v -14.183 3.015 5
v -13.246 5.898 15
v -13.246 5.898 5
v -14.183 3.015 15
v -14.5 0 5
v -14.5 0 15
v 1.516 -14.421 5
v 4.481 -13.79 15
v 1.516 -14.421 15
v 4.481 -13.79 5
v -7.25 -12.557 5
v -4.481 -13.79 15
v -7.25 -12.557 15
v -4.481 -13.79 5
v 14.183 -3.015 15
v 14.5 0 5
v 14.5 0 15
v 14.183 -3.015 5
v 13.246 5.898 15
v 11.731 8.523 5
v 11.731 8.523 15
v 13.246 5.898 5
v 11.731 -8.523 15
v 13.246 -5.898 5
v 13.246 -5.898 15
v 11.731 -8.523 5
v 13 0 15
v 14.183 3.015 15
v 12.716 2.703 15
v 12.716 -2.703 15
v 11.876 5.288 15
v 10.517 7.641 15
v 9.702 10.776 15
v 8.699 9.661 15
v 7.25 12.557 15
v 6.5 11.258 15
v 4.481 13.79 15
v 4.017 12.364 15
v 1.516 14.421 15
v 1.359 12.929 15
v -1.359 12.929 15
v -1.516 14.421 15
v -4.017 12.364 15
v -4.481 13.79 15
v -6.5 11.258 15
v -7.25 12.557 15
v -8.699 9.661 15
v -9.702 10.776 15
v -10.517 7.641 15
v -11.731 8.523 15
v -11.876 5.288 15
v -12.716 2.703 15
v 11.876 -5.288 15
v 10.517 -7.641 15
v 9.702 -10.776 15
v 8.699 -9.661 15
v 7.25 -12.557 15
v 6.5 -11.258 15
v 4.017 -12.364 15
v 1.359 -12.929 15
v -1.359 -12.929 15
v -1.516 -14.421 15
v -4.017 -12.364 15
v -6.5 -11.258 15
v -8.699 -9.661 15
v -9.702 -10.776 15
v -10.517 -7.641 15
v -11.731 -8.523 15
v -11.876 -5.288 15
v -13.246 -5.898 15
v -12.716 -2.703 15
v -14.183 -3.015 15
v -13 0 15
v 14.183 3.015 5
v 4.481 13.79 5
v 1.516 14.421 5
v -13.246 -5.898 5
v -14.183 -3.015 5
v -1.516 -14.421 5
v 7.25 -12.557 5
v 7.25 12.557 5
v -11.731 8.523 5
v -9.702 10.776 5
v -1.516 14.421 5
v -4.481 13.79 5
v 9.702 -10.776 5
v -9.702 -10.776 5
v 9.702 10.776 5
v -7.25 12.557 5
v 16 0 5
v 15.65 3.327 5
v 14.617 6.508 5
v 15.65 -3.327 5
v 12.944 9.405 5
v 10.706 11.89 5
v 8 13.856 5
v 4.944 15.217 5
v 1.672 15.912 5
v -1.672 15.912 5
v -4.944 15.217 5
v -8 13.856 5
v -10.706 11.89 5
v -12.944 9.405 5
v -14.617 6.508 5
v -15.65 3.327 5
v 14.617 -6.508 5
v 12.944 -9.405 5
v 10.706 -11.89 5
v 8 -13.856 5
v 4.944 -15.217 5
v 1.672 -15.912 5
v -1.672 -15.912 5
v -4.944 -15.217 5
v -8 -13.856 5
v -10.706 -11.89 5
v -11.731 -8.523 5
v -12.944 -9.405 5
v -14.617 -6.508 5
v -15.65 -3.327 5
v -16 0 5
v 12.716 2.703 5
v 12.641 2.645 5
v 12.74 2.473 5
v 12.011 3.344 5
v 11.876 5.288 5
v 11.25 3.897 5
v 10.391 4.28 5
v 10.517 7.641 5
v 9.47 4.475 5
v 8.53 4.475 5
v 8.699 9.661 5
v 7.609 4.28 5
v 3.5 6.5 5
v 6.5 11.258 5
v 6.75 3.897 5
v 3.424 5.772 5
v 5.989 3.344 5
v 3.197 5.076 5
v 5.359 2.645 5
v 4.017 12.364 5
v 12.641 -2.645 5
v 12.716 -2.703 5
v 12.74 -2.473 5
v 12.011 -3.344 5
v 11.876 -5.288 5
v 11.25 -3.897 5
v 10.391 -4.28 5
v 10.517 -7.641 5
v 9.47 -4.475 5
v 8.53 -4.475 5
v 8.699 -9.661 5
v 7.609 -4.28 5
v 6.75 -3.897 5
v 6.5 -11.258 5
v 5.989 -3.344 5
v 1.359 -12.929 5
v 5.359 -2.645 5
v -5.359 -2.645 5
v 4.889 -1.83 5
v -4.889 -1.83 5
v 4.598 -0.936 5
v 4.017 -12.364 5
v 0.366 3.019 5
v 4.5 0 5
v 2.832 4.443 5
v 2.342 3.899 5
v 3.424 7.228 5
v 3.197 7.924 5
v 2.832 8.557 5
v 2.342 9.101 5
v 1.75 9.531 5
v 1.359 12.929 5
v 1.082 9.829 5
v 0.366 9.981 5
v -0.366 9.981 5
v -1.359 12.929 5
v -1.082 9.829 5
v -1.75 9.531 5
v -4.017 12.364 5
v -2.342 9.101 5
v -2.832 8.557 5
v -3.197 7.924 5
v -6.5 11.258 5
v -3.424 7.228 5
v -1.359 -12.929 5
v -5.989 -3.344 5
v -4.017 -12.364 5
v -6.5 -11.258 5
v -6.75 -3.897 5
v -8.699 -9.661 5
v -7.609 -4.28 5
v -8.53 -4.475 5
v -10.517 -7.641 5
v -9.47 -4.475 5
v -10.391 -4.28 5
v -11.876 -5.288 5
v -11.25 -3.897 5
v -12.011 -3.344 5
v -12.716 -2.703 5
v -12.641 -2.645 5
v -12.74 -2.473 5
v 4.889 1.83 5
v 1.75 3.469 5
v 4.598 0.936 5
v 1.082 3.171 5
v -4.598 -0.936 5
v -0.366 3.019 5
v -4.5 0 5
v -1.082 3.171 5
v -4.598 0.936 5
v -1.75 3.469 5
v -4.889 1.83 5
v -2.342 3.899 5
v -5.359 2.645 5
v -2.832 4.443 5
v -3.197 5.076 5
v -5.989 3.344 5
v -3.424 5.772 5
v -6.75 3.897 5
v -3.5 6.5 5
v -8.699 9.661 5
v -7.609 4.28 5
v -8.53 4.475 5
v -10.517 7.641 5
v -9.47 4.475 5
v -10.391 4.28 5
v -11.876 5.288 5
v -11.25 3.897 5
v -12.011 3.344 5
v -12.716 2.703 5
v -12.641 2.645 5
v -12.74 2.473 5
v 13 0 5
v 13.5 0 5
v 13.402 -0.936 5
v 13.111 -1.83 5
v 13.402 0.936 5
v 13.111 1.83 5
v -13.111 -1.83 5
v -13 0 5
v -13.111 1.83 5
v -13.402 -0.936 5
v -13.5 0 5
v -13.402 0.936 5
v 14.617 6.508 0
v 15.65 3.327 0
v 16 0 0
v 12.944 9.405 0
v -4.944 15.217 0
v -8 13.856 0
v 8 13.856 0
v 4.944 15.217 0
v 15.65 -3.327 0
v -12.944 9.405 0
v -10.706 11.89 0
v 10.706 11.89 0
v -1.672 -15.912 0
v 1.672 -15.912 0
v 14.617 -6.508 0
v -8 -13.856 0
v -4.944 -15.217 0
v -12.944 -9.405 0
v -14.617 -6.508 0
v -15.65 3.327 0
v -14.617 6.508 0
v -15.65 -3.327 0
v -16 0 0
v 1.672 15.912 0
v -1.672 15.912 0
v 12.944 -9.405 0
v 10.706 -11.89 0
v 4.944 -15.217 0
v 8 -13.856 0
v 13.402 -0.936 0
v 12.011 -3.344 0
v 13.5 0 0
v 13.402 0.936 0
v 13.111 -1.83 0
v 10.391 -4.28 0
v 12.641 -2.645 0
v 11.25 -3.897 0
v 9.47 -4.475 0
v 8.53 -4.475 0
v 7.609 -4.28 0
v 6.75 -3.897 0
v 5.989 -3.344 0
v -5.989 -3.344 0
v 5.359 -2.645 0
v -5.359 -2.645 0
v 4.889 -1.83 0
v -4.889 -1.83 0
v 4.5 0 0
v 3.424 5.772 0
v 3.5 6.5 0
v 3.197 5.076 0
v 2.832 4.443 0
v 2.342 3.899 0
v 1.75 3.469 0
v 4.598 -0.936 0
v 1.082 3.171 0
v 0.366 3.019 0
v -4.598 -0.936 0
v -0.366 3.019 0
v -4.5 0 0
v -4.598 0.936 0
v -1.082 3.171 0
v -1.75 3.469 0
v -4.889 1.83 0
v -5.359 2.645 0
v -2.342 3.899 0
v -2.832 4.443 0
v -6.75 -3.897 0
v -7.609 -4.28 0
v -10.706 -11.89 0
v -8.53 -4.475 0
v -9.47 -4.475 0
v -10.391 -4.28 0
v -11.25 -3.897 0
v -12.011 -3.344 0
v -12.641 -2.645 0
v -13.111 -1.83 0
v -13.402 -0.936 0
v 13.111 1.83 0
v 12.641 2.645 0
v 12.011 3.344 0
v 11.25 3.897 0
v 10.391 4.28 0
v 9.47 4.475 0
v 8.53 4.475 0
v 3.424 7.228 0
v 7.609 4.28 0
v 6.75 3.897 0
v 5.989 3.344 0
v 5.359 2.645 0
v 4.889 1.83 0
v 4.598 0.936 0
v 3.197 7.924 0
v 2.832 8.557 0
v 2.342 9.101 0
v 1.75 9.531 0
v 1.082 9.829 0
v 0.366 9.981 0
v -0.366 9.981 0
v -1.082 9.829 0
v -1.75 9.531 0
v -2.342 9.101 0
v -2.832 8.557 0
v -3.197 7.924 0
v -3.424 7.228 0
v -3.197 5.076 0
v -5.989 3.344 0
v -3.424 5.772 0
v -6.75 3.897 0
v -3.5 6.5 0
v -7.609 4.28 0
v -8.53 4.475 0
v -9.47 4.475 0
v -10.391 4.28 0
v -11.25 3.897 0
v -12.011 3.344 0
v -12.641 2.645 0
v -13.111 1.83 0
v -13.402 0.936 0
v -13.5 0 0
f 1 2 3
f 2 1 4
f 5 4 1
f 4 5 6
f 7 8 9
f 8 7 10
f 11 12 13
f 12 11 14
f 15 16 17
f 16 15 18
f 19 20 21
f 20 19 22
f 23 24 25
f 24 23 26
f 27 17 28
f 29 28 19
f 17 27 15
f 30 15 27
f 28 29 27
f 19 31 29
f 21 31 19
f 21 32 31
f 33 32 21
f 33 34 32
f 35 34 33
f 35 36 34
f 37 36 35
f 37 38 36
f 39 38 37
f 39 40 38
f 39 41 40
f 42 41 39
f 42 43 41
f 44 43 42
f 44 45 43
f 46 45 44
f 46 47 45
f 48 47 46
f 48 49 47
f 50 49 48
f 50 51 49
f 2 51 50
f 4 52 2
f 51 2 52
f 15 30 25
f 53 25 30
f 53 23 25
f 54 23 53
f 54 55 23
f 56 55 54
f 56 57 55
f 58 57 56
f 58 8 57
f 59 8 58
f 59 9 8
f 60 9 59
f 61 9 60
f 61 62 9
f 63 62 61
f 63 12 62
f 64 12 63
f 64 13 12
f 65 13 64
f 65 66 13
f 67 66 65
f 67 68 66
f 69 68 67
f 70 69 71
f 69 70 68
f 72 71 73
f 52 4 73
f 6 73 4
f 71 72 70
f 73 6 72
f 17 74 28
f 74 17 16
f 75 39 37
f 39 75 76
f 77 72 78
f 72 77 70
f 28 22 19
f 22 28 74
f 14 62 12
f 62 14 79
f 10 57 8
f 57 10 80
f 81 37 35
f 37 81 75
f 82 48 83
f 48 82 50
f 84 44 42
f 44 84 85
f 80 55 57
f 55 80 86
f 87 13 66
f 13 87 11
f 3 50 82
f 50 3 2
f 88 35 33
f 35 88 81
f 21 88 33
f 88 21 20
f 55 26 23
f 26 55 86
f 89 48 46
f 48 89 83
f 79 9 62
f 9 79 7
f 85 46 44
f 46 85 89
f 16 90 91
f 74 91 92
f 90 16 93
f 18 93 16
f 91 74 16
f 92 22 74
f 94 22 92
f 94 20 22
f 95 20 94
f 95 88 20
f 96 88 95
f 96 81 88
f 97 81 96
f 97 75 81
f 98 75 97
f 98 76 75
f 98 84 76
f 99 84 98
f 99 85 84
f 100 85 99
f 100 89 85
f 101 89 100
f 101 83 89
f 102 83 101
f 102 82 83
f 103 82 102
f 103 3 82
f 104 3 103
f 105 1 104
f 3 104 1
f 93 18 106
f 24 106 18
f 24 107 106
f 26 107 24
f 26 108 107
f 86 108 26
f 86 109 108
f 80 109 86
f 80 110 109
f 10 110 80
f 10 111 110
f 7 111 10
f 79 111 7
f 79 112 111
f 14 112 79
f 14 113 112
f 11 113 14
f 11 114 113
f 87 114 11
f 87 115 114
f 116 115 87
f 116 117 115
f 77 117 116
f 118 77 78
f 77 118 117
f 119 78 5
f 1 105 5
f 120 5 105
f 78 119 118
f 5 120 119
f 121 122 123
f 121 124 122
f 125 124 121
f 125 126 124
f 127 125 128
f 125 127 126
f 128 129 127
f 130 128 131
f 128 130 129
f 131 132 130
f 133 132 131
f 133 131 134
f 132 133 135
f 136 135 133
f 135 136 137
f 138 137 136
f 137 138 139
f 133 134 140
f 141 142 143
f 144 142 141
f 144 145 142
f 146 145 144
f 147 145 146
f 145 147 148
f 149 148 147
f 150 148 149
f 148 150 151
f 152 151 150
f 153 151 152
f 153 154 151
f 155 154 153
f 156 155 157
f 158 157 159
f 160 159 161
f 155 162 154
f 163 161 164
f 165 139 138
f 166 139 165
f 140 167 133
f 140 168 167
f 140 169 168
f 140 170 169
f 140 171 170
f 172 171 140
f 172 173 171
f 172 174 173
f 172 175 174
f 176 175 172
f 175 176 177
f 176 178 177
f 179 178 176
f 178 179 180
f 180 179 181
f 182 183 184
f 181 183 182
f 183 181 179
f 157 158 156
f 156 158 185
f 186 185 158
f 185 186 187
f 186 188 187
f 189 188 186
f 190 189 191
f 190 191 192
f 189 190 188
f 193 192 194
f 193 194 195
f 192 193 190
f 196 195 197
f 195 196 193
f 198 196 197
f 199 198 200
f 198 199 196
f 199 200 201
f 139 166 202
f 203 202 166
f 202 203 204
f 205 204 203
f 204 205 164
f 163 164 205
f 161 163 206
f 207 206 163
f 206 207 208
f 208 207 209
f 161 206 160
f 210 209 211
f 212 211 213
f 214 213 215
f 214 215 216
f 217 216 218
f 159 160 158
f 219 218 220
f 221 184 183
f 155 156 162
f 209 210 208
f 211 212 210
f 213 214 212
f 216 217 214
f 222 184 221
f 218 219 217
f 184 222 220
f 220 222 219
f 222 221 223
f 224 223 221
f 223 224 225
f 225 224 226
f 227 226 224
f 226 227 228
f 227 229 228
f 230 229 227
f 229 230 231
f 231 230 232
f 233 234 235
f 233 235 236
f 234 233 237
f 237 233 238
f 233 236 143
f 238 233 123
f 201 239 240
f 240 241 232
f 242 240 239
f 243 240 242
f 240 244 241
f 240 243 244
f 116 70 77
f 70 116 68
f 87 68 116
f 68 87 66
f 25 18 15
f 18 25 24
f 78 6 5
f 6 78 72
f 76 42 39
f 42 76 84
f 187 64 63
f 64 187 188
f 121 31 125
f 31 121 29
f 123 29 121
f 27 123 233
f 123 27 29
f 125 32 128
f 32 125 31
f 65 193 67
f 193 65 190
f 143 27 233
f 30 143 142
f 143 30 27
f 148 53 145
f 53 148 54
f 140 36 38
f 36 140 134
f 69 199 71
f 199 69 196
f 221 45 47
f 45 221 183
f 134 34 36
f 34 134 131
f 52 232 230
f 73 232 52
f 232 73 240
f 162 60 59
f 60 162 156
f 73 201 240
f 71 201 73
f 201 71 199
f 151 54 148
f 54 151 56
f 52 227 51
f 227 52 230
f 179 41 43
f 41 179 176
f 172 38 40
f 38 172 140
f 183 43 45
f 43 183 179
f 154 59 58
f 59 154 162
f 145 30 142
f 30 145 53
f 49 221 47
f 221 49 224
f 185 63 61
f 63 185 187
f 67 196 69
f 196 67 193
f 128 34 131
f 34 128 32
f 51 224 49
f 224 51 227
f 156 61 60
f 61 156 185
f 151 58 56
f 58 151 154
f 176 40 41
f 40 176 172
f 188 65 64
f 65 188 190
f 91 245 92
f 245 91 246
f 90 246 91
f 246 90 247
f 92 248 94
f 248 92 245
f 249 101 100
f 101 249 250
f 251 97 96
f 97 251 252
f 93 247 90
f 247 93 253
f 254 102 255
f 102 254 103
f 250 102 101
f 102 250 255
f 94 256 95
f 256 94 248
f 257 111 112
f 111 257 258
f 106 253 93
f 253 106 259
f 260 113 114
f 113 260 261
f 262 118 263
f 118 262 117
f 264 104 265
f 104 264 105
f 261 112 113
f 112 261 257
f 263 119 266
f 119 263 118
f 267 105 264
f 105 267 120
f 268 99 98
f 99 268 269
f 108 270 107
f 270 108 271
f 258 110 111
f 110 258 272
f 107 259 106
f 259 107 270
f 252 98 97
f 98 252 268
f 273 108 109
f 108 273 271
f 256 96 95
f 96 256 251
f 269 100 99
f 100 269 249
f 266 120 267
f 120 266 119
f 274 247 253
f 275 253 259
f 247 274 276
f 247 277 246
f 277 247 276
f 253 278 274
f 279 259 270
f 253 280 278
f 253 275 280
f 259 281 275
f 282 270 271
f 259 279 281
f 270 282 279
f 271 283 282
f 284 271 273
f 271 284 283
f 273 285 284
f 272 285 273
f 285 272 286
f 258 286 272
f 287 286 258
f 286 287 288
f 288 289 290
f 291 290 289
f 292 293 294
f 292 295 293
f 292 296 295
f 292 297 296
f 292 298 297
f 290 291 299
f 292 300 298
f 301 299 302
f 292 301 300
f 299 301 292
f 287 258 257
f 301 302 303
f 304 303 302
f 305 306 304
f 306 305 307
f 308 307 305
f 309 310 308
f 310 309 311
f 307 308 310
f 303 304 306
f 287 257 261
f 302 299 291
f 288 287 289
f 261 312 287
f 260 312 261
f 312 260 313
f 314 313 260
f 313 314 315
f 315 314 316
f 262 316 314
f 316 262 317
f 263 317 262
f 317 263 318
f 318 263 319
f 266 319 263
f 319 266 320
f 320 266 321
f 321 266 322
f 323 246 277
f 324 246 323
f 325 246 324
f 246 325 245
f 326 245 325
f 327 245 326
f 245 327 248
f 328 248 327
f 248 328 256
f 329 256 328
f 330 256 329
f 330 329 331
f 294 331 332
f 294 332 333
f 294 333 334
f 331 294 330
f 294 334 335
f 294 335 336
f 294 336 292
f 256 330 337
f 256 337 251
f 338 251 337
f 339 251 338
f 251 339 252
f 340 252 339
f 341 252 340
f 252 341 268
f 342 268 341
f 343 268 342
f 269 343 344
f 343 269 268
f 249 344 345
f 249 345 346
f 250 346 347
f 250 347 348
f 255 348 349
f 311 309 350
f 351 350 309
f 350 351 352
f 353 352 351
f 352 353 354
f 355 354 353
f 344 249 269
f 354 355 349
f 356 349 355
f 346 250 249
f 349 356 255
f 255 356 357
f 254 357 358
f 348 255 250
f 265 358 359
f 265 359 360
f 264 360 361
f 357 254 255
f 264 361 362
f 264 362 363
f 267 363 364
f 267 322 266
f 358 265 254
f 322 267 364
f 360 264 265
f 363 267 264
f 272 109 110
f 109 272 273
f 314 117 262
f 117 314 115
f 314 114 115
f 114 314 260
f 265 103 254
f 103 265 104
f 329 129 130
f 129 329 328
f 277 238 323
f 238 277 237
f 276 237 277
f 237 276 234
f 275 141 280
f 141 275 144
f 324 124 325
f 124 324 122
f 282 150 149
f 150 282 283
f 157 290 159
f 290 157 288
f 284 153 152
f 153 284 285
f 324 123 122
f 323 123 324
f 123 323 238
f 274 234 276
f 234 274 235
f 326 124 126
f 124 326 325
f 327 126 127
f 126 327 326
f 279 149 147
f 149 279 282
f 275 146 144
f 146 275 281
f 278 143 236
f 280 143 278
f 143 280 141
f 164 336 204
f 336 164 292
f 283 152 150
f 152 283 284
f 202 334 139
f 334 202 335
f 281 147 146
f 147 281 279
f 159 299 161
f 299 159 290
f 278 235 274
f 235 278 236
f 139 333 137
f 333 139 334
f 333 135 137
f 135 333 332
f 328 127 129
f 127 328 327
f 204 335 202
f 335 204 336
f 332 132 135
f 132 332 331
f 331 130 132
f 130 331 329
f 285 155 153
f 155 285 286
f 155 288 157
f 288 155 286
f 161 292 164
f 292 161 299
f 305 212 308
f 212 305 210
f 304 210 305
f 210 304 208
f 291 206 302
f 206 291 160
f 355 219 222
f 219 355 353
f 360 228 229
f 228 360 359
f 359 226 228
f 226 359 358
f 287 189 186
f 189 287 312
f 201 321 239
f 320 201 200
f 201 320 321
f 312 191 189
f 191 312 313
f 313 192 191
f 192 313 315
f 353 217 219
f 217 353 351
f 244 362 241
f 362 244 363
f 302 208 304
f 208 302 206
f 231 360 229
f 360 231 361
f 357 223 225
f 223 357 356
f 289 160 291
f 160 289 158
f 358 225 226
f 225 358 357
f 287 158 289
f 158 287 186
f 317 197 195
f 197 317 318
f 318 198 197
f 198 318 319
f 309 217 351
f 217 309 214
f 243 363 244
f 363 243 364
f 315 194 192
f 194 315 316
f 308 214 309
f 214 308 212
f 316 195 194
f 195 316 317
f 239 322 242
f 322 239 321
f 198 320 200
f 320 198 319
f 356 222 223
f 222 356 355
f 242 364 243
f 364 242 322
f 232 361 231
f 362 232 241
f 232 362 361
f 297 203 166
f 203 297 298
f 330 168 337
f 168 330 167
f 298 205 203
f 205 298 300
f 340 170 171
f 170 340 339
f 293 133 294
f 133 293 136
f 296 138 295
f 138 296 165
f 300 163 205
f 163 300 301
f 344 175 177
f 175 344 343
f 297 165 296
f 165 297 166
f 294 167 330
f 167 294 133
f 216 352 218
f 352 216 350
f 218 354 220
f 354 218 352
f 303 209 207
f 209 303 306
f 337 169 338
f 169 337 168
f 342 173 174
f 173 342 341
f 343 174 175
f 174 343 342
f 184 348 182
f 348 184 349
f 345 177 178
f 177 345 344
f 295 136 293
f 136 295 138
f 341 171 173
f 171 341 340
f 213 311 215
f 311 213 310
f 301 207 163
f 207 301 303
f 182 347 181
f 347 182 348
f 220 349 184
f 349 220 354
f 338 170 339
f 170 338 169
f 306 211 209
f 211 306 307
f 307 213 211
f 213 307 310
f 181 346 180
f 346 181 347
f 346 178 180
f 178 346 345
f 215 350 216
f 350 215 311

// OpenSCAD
// Define variables for the dimensions and hole positions in millimeters
outer_circle_diameter = 32;
outer_circle_height = 5;
inner_circle_diameter = 29;
inner_circle_height = 10;



rca_hole_diameter = 9;
switch_hole_diameter = 7;



module custom_cylinder(translated_position_X, translated_position_Y,translated_position_Z,input_diameter) {
    translate([translated_position_X, translated_position_Y, translated_position_Z]){ 
        rotate([0,0,0]){
            cylinder(d=input_diameter, h=outer_circle_height, $fn=30);
        }
    }
}

module body(){
    //outside
    cylinder(d=outer_circle_diameter, h=outer_circle_height, $fn=30);
    //inside
    difference(){
        translate([0,0,outer_circle_height]){ 
            cylinder(d=inner_circle_diameter, h=inner_circle_height, $fn=30);}
        translate([0,0,outer_circle_height]){ 
            cylinder(d=inner_circle_diameter-3, h=inner_circle_height, $fn=30);
        }
    }
}


module main(){
    difference(){
       body();
       color("blue"){custom_cylinder(9,0,0,rca_hole_diameter);}
       color("green"){custom_cylinder(-9,0,0,rca_hole_diameter);}
       color("red"){custom_cylinder(0,(inner_circle_diameter-3)/4,0,switch_hole_diameter);}
   
    }
 
}
    

main();
//body();
